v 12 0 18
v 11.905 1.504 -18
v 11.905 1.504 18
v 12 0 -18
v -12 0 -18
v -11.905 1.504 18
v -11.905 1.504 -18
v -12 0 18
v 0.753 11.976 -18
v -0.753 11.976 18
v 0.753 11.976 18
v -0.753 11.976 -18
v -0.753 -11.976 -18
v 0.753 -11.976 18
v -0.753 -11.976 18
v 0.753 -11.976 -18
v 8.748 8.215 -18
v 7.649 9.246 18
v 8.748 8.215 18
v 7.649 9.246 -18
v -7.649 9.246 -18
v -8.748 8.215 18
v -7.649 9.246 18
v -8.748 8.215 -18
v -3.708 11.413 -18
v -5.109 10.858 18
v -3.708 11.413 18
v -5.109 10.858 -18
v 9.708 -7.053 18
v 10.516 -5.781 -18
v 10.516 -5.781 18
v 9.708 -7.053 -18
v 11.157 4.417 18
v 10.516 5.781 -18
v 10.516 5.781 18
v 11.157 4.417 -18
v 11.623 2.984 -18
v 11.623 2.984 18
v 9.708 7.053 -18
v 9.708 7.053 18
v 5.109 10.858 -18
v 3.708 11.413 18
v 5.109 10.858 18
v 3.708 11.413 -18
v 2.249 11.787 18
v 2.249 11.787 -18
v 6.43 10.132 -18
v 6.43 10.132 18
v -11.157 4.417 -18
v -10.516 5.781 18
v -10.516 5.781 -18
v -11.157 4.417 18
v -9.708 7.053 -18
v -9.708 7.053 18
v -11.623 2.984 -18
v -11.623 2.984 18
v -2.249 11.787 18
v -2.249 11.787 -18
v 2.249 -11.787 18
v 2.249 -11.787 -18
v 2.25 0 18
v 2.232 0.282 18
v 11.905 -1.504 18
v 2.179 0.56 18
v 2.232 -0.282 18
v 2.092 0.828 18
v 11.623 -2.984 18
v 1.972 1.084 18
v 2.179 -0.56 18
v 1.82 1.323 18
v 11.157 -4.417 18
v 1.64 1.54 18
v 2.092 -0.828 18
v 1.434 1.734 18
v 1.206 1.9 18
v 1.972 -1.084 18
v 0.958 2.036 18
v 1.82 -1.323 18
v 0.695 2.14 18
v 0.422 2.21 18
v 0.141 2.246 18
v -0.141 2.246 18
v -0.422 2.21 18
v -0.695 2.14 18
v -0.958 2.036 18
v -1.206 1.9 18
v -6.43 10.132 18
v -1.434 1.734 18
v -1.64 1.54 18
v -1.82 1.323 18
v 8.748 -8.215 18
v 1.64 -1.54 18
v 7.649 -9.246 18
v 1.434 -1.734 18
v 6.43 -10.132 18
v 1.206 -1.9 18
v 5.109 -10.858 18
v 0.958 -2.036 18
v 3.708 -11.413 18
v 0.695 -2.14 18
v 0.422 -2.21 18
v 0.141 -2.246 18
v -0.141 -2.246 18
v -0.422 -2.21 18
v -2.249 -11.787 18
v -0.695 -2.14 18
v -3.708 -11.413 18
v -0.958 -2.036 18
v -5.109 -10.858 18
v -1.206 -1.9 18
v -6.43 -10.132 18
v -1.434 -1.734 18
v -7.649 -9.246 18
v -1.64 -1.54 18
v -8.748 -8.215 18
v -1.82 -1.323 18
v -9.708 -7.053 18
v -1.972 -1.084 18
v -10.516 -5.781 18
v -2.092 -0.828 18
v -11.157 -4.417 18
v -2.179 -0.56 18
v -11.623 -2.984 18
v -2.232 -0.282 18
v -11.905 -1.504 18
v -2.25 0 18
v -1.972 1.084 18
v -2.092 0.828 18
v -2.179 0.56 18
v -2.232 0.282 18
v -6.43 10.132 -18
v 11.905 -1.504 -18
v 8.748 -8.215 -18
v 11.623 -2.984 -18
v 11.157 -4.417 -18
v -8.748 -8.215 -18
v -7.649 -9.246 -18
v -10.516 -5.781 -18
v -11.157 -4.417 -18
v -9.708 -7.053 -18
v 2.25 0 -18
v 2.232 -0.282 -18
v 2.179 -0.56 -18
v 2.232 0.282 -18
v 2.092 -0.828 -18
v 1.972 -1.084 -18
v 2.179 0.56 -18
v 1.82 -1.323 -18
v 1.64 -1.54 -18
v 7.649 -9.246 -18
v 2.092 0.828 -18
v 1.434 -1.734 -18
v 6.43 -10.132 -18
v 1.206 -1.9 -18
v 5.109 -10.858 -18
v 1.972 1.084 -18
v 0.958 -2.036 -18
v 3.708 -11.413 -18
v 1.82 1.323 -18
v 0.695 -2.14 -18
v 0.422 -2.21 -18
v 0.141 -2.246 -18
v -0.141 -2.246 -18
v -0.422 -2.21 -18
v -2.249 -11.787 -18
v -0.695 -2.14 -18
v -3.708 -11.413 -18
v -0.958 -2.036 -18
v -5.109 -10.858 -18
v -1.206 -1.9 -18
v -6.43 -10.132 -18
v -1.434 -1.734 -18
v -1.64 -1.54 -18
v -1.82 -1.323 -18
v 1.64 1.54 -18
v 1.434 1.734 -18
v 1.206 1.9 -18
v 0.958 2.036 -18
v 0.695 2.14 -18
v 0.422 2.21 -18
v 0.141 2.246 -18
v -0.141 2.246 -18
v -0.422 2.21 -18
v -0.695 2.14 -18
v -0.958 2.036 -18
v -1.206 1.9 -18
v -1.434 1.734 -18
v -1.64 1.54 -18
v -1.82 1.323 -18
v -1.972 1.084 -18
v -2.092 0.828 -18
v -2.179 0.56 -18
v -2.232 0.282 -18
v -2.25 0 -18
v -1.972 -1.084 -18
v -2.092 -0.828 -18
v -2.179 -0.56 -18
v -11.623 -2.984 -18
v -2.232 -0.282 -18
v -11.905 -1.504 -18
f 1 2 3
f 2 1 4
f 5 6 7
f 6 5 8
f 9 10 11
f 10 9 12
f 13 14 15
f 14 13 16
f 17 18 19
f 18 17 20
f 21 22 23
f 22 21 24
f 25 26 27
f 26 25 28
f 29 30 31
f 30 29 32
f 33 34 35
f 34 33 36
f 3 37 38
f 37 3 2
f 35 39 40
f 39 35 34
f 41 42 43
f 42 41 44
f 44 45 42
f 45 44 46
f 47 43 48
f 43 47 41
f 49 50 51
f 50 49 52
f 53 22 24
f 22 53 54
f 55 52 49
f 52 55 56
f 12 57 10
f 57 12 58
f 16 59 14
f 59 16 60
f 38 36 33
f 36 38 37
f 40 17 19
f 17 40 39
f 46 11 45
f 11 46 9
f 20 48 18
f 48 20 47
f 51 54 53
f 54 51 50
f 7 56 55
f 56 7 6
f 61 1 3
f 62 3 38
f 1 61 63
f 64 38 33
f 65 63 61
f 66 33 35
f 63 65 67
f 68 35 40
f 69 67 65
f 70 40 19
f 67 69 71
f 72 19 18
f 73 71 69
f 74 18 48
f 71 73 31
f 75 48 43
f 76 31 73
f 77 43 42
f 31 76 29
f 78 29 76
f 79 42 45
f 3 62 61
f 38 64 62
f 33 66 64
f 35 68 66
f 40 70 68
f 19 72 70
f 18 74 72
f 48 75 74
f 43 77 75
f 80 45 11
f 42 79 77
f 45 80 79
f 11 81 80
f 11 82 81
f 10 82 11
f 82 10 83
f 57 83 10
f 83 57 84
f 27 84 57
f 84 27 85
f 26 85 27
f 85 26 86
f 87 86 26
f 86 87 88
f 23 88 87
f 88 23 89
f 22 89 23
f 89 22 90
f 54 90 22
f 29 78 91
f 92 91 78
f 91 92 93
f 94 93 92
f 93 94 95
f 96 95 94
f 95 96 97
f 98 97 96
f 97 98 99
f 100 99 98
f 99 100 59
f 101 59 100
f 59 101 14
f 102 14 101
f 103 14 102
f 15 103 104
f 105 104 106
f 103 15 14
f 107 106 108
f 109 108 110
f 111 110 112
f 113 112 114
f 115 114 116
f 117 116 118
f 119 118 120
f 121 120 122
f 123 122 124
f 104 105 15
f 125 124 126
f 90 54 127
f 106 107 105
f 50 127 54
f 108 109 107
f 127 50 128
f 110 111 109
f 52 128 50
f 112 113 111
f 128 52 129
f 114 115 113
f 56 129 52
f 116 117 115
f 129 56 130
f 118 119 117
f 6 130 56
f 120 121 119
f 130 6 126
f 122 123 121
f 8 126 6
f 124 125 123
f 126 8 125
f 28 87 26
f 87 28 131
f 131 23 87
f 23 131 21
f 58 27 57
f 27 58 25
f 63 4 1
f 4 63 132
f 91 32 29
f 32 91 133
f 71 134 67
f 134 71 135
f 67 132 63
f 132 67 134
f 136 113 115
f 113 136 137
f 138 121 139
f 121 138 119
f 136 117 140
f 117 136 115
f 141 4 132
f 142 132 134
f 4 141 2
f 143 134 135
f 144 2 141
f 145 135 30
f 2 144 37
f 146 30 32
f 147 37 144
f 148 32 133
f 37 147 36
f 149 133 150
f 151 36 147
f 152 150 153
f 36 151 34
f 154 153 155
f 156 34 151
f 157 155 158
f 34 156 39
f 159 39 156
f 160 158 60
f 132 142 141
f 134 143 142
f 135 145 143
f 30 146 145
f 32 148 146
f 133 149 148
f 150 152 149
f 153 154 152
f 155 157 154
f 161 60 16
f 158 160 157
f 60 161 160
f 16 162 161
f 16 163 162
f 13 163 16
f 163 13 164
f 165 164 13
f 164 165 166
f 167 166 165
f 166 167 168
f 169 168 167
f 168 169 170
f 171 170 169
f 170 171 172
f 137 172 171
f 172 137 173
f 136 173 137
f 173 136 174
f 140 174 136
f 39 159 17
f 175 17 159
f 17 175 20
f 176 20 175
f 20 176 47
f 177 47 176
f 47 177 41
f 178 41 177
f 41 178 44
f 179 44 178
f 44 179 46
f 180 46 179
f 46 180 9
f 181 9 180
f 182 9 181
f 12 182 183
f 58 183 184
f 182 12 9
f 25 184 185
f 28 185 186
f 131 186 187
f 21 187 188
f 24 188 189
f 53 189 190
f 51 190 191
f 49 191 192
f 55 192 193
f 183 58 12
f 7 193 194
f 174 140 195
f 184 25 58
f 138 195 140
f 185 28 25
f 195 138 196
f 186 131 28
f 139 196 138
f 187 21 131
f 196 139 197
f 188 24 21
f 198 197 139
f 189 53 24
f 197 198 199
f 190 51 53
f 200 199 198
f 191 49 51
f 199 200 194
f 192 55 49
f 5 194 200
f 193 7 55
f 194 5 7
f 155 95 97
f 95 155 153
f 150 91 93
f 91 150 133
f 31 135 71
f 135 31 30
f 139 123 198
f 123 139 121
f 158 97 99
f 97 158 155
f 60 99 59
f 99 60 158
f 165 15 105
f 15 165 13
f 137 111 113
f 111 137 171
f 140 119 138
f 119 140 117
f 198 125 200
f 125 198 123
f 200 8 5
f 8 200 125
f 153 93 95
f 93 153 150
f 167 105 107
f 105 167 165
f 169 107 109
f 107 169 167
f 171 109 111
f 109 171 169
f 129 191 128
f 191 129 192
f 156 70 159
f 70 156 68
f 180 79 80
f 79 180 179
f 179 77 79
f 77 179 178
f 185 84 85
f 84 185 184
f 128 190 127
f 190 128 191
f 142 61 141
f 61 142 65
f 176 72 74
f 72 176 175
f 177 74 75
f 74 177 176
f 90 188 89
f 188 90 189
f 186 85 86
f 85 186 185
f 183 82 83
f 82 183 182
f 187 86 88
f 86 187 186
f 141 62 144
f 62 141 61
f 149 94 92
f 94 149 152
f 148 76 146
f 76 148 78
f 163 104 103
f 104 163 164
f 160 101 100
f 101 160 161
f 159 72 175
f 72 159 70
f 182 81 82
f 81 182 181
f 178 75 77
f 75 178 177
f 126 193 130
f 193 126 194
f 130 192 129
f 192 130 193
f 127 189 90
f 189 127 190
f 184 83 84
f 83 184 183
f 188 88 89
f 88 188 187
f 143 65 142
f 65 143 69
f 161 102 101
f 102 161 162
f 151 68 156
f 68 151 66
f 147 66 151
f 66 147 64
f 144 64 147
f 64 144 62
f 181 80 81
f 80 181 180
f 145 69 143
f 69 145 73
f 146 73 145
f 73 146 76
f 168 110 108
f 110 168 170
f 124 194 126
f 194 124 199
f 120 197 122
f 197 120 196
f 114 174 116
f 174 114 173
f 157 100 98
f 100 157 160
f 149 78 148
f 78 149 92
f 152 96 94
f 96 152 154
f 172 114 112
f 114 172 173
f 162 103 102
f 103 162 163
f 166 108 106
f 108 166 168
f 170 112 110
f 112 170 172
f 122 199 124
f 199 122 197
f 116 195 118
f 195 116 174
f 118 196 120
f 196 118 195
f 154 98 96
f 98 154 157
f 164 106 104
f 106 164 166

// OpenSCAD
$fn = 50;


difference() {
	union() {
		translate(v = [0, 0, -18.0000000000]) {
			cylinder(h = 36, r = 12.0000000000);
		}
	}
	union() {
		translate(v = [0, 0, -100.0000000000]) {
			cylinder(h = 200, r = 2.2500000000);
		}
	}
}
